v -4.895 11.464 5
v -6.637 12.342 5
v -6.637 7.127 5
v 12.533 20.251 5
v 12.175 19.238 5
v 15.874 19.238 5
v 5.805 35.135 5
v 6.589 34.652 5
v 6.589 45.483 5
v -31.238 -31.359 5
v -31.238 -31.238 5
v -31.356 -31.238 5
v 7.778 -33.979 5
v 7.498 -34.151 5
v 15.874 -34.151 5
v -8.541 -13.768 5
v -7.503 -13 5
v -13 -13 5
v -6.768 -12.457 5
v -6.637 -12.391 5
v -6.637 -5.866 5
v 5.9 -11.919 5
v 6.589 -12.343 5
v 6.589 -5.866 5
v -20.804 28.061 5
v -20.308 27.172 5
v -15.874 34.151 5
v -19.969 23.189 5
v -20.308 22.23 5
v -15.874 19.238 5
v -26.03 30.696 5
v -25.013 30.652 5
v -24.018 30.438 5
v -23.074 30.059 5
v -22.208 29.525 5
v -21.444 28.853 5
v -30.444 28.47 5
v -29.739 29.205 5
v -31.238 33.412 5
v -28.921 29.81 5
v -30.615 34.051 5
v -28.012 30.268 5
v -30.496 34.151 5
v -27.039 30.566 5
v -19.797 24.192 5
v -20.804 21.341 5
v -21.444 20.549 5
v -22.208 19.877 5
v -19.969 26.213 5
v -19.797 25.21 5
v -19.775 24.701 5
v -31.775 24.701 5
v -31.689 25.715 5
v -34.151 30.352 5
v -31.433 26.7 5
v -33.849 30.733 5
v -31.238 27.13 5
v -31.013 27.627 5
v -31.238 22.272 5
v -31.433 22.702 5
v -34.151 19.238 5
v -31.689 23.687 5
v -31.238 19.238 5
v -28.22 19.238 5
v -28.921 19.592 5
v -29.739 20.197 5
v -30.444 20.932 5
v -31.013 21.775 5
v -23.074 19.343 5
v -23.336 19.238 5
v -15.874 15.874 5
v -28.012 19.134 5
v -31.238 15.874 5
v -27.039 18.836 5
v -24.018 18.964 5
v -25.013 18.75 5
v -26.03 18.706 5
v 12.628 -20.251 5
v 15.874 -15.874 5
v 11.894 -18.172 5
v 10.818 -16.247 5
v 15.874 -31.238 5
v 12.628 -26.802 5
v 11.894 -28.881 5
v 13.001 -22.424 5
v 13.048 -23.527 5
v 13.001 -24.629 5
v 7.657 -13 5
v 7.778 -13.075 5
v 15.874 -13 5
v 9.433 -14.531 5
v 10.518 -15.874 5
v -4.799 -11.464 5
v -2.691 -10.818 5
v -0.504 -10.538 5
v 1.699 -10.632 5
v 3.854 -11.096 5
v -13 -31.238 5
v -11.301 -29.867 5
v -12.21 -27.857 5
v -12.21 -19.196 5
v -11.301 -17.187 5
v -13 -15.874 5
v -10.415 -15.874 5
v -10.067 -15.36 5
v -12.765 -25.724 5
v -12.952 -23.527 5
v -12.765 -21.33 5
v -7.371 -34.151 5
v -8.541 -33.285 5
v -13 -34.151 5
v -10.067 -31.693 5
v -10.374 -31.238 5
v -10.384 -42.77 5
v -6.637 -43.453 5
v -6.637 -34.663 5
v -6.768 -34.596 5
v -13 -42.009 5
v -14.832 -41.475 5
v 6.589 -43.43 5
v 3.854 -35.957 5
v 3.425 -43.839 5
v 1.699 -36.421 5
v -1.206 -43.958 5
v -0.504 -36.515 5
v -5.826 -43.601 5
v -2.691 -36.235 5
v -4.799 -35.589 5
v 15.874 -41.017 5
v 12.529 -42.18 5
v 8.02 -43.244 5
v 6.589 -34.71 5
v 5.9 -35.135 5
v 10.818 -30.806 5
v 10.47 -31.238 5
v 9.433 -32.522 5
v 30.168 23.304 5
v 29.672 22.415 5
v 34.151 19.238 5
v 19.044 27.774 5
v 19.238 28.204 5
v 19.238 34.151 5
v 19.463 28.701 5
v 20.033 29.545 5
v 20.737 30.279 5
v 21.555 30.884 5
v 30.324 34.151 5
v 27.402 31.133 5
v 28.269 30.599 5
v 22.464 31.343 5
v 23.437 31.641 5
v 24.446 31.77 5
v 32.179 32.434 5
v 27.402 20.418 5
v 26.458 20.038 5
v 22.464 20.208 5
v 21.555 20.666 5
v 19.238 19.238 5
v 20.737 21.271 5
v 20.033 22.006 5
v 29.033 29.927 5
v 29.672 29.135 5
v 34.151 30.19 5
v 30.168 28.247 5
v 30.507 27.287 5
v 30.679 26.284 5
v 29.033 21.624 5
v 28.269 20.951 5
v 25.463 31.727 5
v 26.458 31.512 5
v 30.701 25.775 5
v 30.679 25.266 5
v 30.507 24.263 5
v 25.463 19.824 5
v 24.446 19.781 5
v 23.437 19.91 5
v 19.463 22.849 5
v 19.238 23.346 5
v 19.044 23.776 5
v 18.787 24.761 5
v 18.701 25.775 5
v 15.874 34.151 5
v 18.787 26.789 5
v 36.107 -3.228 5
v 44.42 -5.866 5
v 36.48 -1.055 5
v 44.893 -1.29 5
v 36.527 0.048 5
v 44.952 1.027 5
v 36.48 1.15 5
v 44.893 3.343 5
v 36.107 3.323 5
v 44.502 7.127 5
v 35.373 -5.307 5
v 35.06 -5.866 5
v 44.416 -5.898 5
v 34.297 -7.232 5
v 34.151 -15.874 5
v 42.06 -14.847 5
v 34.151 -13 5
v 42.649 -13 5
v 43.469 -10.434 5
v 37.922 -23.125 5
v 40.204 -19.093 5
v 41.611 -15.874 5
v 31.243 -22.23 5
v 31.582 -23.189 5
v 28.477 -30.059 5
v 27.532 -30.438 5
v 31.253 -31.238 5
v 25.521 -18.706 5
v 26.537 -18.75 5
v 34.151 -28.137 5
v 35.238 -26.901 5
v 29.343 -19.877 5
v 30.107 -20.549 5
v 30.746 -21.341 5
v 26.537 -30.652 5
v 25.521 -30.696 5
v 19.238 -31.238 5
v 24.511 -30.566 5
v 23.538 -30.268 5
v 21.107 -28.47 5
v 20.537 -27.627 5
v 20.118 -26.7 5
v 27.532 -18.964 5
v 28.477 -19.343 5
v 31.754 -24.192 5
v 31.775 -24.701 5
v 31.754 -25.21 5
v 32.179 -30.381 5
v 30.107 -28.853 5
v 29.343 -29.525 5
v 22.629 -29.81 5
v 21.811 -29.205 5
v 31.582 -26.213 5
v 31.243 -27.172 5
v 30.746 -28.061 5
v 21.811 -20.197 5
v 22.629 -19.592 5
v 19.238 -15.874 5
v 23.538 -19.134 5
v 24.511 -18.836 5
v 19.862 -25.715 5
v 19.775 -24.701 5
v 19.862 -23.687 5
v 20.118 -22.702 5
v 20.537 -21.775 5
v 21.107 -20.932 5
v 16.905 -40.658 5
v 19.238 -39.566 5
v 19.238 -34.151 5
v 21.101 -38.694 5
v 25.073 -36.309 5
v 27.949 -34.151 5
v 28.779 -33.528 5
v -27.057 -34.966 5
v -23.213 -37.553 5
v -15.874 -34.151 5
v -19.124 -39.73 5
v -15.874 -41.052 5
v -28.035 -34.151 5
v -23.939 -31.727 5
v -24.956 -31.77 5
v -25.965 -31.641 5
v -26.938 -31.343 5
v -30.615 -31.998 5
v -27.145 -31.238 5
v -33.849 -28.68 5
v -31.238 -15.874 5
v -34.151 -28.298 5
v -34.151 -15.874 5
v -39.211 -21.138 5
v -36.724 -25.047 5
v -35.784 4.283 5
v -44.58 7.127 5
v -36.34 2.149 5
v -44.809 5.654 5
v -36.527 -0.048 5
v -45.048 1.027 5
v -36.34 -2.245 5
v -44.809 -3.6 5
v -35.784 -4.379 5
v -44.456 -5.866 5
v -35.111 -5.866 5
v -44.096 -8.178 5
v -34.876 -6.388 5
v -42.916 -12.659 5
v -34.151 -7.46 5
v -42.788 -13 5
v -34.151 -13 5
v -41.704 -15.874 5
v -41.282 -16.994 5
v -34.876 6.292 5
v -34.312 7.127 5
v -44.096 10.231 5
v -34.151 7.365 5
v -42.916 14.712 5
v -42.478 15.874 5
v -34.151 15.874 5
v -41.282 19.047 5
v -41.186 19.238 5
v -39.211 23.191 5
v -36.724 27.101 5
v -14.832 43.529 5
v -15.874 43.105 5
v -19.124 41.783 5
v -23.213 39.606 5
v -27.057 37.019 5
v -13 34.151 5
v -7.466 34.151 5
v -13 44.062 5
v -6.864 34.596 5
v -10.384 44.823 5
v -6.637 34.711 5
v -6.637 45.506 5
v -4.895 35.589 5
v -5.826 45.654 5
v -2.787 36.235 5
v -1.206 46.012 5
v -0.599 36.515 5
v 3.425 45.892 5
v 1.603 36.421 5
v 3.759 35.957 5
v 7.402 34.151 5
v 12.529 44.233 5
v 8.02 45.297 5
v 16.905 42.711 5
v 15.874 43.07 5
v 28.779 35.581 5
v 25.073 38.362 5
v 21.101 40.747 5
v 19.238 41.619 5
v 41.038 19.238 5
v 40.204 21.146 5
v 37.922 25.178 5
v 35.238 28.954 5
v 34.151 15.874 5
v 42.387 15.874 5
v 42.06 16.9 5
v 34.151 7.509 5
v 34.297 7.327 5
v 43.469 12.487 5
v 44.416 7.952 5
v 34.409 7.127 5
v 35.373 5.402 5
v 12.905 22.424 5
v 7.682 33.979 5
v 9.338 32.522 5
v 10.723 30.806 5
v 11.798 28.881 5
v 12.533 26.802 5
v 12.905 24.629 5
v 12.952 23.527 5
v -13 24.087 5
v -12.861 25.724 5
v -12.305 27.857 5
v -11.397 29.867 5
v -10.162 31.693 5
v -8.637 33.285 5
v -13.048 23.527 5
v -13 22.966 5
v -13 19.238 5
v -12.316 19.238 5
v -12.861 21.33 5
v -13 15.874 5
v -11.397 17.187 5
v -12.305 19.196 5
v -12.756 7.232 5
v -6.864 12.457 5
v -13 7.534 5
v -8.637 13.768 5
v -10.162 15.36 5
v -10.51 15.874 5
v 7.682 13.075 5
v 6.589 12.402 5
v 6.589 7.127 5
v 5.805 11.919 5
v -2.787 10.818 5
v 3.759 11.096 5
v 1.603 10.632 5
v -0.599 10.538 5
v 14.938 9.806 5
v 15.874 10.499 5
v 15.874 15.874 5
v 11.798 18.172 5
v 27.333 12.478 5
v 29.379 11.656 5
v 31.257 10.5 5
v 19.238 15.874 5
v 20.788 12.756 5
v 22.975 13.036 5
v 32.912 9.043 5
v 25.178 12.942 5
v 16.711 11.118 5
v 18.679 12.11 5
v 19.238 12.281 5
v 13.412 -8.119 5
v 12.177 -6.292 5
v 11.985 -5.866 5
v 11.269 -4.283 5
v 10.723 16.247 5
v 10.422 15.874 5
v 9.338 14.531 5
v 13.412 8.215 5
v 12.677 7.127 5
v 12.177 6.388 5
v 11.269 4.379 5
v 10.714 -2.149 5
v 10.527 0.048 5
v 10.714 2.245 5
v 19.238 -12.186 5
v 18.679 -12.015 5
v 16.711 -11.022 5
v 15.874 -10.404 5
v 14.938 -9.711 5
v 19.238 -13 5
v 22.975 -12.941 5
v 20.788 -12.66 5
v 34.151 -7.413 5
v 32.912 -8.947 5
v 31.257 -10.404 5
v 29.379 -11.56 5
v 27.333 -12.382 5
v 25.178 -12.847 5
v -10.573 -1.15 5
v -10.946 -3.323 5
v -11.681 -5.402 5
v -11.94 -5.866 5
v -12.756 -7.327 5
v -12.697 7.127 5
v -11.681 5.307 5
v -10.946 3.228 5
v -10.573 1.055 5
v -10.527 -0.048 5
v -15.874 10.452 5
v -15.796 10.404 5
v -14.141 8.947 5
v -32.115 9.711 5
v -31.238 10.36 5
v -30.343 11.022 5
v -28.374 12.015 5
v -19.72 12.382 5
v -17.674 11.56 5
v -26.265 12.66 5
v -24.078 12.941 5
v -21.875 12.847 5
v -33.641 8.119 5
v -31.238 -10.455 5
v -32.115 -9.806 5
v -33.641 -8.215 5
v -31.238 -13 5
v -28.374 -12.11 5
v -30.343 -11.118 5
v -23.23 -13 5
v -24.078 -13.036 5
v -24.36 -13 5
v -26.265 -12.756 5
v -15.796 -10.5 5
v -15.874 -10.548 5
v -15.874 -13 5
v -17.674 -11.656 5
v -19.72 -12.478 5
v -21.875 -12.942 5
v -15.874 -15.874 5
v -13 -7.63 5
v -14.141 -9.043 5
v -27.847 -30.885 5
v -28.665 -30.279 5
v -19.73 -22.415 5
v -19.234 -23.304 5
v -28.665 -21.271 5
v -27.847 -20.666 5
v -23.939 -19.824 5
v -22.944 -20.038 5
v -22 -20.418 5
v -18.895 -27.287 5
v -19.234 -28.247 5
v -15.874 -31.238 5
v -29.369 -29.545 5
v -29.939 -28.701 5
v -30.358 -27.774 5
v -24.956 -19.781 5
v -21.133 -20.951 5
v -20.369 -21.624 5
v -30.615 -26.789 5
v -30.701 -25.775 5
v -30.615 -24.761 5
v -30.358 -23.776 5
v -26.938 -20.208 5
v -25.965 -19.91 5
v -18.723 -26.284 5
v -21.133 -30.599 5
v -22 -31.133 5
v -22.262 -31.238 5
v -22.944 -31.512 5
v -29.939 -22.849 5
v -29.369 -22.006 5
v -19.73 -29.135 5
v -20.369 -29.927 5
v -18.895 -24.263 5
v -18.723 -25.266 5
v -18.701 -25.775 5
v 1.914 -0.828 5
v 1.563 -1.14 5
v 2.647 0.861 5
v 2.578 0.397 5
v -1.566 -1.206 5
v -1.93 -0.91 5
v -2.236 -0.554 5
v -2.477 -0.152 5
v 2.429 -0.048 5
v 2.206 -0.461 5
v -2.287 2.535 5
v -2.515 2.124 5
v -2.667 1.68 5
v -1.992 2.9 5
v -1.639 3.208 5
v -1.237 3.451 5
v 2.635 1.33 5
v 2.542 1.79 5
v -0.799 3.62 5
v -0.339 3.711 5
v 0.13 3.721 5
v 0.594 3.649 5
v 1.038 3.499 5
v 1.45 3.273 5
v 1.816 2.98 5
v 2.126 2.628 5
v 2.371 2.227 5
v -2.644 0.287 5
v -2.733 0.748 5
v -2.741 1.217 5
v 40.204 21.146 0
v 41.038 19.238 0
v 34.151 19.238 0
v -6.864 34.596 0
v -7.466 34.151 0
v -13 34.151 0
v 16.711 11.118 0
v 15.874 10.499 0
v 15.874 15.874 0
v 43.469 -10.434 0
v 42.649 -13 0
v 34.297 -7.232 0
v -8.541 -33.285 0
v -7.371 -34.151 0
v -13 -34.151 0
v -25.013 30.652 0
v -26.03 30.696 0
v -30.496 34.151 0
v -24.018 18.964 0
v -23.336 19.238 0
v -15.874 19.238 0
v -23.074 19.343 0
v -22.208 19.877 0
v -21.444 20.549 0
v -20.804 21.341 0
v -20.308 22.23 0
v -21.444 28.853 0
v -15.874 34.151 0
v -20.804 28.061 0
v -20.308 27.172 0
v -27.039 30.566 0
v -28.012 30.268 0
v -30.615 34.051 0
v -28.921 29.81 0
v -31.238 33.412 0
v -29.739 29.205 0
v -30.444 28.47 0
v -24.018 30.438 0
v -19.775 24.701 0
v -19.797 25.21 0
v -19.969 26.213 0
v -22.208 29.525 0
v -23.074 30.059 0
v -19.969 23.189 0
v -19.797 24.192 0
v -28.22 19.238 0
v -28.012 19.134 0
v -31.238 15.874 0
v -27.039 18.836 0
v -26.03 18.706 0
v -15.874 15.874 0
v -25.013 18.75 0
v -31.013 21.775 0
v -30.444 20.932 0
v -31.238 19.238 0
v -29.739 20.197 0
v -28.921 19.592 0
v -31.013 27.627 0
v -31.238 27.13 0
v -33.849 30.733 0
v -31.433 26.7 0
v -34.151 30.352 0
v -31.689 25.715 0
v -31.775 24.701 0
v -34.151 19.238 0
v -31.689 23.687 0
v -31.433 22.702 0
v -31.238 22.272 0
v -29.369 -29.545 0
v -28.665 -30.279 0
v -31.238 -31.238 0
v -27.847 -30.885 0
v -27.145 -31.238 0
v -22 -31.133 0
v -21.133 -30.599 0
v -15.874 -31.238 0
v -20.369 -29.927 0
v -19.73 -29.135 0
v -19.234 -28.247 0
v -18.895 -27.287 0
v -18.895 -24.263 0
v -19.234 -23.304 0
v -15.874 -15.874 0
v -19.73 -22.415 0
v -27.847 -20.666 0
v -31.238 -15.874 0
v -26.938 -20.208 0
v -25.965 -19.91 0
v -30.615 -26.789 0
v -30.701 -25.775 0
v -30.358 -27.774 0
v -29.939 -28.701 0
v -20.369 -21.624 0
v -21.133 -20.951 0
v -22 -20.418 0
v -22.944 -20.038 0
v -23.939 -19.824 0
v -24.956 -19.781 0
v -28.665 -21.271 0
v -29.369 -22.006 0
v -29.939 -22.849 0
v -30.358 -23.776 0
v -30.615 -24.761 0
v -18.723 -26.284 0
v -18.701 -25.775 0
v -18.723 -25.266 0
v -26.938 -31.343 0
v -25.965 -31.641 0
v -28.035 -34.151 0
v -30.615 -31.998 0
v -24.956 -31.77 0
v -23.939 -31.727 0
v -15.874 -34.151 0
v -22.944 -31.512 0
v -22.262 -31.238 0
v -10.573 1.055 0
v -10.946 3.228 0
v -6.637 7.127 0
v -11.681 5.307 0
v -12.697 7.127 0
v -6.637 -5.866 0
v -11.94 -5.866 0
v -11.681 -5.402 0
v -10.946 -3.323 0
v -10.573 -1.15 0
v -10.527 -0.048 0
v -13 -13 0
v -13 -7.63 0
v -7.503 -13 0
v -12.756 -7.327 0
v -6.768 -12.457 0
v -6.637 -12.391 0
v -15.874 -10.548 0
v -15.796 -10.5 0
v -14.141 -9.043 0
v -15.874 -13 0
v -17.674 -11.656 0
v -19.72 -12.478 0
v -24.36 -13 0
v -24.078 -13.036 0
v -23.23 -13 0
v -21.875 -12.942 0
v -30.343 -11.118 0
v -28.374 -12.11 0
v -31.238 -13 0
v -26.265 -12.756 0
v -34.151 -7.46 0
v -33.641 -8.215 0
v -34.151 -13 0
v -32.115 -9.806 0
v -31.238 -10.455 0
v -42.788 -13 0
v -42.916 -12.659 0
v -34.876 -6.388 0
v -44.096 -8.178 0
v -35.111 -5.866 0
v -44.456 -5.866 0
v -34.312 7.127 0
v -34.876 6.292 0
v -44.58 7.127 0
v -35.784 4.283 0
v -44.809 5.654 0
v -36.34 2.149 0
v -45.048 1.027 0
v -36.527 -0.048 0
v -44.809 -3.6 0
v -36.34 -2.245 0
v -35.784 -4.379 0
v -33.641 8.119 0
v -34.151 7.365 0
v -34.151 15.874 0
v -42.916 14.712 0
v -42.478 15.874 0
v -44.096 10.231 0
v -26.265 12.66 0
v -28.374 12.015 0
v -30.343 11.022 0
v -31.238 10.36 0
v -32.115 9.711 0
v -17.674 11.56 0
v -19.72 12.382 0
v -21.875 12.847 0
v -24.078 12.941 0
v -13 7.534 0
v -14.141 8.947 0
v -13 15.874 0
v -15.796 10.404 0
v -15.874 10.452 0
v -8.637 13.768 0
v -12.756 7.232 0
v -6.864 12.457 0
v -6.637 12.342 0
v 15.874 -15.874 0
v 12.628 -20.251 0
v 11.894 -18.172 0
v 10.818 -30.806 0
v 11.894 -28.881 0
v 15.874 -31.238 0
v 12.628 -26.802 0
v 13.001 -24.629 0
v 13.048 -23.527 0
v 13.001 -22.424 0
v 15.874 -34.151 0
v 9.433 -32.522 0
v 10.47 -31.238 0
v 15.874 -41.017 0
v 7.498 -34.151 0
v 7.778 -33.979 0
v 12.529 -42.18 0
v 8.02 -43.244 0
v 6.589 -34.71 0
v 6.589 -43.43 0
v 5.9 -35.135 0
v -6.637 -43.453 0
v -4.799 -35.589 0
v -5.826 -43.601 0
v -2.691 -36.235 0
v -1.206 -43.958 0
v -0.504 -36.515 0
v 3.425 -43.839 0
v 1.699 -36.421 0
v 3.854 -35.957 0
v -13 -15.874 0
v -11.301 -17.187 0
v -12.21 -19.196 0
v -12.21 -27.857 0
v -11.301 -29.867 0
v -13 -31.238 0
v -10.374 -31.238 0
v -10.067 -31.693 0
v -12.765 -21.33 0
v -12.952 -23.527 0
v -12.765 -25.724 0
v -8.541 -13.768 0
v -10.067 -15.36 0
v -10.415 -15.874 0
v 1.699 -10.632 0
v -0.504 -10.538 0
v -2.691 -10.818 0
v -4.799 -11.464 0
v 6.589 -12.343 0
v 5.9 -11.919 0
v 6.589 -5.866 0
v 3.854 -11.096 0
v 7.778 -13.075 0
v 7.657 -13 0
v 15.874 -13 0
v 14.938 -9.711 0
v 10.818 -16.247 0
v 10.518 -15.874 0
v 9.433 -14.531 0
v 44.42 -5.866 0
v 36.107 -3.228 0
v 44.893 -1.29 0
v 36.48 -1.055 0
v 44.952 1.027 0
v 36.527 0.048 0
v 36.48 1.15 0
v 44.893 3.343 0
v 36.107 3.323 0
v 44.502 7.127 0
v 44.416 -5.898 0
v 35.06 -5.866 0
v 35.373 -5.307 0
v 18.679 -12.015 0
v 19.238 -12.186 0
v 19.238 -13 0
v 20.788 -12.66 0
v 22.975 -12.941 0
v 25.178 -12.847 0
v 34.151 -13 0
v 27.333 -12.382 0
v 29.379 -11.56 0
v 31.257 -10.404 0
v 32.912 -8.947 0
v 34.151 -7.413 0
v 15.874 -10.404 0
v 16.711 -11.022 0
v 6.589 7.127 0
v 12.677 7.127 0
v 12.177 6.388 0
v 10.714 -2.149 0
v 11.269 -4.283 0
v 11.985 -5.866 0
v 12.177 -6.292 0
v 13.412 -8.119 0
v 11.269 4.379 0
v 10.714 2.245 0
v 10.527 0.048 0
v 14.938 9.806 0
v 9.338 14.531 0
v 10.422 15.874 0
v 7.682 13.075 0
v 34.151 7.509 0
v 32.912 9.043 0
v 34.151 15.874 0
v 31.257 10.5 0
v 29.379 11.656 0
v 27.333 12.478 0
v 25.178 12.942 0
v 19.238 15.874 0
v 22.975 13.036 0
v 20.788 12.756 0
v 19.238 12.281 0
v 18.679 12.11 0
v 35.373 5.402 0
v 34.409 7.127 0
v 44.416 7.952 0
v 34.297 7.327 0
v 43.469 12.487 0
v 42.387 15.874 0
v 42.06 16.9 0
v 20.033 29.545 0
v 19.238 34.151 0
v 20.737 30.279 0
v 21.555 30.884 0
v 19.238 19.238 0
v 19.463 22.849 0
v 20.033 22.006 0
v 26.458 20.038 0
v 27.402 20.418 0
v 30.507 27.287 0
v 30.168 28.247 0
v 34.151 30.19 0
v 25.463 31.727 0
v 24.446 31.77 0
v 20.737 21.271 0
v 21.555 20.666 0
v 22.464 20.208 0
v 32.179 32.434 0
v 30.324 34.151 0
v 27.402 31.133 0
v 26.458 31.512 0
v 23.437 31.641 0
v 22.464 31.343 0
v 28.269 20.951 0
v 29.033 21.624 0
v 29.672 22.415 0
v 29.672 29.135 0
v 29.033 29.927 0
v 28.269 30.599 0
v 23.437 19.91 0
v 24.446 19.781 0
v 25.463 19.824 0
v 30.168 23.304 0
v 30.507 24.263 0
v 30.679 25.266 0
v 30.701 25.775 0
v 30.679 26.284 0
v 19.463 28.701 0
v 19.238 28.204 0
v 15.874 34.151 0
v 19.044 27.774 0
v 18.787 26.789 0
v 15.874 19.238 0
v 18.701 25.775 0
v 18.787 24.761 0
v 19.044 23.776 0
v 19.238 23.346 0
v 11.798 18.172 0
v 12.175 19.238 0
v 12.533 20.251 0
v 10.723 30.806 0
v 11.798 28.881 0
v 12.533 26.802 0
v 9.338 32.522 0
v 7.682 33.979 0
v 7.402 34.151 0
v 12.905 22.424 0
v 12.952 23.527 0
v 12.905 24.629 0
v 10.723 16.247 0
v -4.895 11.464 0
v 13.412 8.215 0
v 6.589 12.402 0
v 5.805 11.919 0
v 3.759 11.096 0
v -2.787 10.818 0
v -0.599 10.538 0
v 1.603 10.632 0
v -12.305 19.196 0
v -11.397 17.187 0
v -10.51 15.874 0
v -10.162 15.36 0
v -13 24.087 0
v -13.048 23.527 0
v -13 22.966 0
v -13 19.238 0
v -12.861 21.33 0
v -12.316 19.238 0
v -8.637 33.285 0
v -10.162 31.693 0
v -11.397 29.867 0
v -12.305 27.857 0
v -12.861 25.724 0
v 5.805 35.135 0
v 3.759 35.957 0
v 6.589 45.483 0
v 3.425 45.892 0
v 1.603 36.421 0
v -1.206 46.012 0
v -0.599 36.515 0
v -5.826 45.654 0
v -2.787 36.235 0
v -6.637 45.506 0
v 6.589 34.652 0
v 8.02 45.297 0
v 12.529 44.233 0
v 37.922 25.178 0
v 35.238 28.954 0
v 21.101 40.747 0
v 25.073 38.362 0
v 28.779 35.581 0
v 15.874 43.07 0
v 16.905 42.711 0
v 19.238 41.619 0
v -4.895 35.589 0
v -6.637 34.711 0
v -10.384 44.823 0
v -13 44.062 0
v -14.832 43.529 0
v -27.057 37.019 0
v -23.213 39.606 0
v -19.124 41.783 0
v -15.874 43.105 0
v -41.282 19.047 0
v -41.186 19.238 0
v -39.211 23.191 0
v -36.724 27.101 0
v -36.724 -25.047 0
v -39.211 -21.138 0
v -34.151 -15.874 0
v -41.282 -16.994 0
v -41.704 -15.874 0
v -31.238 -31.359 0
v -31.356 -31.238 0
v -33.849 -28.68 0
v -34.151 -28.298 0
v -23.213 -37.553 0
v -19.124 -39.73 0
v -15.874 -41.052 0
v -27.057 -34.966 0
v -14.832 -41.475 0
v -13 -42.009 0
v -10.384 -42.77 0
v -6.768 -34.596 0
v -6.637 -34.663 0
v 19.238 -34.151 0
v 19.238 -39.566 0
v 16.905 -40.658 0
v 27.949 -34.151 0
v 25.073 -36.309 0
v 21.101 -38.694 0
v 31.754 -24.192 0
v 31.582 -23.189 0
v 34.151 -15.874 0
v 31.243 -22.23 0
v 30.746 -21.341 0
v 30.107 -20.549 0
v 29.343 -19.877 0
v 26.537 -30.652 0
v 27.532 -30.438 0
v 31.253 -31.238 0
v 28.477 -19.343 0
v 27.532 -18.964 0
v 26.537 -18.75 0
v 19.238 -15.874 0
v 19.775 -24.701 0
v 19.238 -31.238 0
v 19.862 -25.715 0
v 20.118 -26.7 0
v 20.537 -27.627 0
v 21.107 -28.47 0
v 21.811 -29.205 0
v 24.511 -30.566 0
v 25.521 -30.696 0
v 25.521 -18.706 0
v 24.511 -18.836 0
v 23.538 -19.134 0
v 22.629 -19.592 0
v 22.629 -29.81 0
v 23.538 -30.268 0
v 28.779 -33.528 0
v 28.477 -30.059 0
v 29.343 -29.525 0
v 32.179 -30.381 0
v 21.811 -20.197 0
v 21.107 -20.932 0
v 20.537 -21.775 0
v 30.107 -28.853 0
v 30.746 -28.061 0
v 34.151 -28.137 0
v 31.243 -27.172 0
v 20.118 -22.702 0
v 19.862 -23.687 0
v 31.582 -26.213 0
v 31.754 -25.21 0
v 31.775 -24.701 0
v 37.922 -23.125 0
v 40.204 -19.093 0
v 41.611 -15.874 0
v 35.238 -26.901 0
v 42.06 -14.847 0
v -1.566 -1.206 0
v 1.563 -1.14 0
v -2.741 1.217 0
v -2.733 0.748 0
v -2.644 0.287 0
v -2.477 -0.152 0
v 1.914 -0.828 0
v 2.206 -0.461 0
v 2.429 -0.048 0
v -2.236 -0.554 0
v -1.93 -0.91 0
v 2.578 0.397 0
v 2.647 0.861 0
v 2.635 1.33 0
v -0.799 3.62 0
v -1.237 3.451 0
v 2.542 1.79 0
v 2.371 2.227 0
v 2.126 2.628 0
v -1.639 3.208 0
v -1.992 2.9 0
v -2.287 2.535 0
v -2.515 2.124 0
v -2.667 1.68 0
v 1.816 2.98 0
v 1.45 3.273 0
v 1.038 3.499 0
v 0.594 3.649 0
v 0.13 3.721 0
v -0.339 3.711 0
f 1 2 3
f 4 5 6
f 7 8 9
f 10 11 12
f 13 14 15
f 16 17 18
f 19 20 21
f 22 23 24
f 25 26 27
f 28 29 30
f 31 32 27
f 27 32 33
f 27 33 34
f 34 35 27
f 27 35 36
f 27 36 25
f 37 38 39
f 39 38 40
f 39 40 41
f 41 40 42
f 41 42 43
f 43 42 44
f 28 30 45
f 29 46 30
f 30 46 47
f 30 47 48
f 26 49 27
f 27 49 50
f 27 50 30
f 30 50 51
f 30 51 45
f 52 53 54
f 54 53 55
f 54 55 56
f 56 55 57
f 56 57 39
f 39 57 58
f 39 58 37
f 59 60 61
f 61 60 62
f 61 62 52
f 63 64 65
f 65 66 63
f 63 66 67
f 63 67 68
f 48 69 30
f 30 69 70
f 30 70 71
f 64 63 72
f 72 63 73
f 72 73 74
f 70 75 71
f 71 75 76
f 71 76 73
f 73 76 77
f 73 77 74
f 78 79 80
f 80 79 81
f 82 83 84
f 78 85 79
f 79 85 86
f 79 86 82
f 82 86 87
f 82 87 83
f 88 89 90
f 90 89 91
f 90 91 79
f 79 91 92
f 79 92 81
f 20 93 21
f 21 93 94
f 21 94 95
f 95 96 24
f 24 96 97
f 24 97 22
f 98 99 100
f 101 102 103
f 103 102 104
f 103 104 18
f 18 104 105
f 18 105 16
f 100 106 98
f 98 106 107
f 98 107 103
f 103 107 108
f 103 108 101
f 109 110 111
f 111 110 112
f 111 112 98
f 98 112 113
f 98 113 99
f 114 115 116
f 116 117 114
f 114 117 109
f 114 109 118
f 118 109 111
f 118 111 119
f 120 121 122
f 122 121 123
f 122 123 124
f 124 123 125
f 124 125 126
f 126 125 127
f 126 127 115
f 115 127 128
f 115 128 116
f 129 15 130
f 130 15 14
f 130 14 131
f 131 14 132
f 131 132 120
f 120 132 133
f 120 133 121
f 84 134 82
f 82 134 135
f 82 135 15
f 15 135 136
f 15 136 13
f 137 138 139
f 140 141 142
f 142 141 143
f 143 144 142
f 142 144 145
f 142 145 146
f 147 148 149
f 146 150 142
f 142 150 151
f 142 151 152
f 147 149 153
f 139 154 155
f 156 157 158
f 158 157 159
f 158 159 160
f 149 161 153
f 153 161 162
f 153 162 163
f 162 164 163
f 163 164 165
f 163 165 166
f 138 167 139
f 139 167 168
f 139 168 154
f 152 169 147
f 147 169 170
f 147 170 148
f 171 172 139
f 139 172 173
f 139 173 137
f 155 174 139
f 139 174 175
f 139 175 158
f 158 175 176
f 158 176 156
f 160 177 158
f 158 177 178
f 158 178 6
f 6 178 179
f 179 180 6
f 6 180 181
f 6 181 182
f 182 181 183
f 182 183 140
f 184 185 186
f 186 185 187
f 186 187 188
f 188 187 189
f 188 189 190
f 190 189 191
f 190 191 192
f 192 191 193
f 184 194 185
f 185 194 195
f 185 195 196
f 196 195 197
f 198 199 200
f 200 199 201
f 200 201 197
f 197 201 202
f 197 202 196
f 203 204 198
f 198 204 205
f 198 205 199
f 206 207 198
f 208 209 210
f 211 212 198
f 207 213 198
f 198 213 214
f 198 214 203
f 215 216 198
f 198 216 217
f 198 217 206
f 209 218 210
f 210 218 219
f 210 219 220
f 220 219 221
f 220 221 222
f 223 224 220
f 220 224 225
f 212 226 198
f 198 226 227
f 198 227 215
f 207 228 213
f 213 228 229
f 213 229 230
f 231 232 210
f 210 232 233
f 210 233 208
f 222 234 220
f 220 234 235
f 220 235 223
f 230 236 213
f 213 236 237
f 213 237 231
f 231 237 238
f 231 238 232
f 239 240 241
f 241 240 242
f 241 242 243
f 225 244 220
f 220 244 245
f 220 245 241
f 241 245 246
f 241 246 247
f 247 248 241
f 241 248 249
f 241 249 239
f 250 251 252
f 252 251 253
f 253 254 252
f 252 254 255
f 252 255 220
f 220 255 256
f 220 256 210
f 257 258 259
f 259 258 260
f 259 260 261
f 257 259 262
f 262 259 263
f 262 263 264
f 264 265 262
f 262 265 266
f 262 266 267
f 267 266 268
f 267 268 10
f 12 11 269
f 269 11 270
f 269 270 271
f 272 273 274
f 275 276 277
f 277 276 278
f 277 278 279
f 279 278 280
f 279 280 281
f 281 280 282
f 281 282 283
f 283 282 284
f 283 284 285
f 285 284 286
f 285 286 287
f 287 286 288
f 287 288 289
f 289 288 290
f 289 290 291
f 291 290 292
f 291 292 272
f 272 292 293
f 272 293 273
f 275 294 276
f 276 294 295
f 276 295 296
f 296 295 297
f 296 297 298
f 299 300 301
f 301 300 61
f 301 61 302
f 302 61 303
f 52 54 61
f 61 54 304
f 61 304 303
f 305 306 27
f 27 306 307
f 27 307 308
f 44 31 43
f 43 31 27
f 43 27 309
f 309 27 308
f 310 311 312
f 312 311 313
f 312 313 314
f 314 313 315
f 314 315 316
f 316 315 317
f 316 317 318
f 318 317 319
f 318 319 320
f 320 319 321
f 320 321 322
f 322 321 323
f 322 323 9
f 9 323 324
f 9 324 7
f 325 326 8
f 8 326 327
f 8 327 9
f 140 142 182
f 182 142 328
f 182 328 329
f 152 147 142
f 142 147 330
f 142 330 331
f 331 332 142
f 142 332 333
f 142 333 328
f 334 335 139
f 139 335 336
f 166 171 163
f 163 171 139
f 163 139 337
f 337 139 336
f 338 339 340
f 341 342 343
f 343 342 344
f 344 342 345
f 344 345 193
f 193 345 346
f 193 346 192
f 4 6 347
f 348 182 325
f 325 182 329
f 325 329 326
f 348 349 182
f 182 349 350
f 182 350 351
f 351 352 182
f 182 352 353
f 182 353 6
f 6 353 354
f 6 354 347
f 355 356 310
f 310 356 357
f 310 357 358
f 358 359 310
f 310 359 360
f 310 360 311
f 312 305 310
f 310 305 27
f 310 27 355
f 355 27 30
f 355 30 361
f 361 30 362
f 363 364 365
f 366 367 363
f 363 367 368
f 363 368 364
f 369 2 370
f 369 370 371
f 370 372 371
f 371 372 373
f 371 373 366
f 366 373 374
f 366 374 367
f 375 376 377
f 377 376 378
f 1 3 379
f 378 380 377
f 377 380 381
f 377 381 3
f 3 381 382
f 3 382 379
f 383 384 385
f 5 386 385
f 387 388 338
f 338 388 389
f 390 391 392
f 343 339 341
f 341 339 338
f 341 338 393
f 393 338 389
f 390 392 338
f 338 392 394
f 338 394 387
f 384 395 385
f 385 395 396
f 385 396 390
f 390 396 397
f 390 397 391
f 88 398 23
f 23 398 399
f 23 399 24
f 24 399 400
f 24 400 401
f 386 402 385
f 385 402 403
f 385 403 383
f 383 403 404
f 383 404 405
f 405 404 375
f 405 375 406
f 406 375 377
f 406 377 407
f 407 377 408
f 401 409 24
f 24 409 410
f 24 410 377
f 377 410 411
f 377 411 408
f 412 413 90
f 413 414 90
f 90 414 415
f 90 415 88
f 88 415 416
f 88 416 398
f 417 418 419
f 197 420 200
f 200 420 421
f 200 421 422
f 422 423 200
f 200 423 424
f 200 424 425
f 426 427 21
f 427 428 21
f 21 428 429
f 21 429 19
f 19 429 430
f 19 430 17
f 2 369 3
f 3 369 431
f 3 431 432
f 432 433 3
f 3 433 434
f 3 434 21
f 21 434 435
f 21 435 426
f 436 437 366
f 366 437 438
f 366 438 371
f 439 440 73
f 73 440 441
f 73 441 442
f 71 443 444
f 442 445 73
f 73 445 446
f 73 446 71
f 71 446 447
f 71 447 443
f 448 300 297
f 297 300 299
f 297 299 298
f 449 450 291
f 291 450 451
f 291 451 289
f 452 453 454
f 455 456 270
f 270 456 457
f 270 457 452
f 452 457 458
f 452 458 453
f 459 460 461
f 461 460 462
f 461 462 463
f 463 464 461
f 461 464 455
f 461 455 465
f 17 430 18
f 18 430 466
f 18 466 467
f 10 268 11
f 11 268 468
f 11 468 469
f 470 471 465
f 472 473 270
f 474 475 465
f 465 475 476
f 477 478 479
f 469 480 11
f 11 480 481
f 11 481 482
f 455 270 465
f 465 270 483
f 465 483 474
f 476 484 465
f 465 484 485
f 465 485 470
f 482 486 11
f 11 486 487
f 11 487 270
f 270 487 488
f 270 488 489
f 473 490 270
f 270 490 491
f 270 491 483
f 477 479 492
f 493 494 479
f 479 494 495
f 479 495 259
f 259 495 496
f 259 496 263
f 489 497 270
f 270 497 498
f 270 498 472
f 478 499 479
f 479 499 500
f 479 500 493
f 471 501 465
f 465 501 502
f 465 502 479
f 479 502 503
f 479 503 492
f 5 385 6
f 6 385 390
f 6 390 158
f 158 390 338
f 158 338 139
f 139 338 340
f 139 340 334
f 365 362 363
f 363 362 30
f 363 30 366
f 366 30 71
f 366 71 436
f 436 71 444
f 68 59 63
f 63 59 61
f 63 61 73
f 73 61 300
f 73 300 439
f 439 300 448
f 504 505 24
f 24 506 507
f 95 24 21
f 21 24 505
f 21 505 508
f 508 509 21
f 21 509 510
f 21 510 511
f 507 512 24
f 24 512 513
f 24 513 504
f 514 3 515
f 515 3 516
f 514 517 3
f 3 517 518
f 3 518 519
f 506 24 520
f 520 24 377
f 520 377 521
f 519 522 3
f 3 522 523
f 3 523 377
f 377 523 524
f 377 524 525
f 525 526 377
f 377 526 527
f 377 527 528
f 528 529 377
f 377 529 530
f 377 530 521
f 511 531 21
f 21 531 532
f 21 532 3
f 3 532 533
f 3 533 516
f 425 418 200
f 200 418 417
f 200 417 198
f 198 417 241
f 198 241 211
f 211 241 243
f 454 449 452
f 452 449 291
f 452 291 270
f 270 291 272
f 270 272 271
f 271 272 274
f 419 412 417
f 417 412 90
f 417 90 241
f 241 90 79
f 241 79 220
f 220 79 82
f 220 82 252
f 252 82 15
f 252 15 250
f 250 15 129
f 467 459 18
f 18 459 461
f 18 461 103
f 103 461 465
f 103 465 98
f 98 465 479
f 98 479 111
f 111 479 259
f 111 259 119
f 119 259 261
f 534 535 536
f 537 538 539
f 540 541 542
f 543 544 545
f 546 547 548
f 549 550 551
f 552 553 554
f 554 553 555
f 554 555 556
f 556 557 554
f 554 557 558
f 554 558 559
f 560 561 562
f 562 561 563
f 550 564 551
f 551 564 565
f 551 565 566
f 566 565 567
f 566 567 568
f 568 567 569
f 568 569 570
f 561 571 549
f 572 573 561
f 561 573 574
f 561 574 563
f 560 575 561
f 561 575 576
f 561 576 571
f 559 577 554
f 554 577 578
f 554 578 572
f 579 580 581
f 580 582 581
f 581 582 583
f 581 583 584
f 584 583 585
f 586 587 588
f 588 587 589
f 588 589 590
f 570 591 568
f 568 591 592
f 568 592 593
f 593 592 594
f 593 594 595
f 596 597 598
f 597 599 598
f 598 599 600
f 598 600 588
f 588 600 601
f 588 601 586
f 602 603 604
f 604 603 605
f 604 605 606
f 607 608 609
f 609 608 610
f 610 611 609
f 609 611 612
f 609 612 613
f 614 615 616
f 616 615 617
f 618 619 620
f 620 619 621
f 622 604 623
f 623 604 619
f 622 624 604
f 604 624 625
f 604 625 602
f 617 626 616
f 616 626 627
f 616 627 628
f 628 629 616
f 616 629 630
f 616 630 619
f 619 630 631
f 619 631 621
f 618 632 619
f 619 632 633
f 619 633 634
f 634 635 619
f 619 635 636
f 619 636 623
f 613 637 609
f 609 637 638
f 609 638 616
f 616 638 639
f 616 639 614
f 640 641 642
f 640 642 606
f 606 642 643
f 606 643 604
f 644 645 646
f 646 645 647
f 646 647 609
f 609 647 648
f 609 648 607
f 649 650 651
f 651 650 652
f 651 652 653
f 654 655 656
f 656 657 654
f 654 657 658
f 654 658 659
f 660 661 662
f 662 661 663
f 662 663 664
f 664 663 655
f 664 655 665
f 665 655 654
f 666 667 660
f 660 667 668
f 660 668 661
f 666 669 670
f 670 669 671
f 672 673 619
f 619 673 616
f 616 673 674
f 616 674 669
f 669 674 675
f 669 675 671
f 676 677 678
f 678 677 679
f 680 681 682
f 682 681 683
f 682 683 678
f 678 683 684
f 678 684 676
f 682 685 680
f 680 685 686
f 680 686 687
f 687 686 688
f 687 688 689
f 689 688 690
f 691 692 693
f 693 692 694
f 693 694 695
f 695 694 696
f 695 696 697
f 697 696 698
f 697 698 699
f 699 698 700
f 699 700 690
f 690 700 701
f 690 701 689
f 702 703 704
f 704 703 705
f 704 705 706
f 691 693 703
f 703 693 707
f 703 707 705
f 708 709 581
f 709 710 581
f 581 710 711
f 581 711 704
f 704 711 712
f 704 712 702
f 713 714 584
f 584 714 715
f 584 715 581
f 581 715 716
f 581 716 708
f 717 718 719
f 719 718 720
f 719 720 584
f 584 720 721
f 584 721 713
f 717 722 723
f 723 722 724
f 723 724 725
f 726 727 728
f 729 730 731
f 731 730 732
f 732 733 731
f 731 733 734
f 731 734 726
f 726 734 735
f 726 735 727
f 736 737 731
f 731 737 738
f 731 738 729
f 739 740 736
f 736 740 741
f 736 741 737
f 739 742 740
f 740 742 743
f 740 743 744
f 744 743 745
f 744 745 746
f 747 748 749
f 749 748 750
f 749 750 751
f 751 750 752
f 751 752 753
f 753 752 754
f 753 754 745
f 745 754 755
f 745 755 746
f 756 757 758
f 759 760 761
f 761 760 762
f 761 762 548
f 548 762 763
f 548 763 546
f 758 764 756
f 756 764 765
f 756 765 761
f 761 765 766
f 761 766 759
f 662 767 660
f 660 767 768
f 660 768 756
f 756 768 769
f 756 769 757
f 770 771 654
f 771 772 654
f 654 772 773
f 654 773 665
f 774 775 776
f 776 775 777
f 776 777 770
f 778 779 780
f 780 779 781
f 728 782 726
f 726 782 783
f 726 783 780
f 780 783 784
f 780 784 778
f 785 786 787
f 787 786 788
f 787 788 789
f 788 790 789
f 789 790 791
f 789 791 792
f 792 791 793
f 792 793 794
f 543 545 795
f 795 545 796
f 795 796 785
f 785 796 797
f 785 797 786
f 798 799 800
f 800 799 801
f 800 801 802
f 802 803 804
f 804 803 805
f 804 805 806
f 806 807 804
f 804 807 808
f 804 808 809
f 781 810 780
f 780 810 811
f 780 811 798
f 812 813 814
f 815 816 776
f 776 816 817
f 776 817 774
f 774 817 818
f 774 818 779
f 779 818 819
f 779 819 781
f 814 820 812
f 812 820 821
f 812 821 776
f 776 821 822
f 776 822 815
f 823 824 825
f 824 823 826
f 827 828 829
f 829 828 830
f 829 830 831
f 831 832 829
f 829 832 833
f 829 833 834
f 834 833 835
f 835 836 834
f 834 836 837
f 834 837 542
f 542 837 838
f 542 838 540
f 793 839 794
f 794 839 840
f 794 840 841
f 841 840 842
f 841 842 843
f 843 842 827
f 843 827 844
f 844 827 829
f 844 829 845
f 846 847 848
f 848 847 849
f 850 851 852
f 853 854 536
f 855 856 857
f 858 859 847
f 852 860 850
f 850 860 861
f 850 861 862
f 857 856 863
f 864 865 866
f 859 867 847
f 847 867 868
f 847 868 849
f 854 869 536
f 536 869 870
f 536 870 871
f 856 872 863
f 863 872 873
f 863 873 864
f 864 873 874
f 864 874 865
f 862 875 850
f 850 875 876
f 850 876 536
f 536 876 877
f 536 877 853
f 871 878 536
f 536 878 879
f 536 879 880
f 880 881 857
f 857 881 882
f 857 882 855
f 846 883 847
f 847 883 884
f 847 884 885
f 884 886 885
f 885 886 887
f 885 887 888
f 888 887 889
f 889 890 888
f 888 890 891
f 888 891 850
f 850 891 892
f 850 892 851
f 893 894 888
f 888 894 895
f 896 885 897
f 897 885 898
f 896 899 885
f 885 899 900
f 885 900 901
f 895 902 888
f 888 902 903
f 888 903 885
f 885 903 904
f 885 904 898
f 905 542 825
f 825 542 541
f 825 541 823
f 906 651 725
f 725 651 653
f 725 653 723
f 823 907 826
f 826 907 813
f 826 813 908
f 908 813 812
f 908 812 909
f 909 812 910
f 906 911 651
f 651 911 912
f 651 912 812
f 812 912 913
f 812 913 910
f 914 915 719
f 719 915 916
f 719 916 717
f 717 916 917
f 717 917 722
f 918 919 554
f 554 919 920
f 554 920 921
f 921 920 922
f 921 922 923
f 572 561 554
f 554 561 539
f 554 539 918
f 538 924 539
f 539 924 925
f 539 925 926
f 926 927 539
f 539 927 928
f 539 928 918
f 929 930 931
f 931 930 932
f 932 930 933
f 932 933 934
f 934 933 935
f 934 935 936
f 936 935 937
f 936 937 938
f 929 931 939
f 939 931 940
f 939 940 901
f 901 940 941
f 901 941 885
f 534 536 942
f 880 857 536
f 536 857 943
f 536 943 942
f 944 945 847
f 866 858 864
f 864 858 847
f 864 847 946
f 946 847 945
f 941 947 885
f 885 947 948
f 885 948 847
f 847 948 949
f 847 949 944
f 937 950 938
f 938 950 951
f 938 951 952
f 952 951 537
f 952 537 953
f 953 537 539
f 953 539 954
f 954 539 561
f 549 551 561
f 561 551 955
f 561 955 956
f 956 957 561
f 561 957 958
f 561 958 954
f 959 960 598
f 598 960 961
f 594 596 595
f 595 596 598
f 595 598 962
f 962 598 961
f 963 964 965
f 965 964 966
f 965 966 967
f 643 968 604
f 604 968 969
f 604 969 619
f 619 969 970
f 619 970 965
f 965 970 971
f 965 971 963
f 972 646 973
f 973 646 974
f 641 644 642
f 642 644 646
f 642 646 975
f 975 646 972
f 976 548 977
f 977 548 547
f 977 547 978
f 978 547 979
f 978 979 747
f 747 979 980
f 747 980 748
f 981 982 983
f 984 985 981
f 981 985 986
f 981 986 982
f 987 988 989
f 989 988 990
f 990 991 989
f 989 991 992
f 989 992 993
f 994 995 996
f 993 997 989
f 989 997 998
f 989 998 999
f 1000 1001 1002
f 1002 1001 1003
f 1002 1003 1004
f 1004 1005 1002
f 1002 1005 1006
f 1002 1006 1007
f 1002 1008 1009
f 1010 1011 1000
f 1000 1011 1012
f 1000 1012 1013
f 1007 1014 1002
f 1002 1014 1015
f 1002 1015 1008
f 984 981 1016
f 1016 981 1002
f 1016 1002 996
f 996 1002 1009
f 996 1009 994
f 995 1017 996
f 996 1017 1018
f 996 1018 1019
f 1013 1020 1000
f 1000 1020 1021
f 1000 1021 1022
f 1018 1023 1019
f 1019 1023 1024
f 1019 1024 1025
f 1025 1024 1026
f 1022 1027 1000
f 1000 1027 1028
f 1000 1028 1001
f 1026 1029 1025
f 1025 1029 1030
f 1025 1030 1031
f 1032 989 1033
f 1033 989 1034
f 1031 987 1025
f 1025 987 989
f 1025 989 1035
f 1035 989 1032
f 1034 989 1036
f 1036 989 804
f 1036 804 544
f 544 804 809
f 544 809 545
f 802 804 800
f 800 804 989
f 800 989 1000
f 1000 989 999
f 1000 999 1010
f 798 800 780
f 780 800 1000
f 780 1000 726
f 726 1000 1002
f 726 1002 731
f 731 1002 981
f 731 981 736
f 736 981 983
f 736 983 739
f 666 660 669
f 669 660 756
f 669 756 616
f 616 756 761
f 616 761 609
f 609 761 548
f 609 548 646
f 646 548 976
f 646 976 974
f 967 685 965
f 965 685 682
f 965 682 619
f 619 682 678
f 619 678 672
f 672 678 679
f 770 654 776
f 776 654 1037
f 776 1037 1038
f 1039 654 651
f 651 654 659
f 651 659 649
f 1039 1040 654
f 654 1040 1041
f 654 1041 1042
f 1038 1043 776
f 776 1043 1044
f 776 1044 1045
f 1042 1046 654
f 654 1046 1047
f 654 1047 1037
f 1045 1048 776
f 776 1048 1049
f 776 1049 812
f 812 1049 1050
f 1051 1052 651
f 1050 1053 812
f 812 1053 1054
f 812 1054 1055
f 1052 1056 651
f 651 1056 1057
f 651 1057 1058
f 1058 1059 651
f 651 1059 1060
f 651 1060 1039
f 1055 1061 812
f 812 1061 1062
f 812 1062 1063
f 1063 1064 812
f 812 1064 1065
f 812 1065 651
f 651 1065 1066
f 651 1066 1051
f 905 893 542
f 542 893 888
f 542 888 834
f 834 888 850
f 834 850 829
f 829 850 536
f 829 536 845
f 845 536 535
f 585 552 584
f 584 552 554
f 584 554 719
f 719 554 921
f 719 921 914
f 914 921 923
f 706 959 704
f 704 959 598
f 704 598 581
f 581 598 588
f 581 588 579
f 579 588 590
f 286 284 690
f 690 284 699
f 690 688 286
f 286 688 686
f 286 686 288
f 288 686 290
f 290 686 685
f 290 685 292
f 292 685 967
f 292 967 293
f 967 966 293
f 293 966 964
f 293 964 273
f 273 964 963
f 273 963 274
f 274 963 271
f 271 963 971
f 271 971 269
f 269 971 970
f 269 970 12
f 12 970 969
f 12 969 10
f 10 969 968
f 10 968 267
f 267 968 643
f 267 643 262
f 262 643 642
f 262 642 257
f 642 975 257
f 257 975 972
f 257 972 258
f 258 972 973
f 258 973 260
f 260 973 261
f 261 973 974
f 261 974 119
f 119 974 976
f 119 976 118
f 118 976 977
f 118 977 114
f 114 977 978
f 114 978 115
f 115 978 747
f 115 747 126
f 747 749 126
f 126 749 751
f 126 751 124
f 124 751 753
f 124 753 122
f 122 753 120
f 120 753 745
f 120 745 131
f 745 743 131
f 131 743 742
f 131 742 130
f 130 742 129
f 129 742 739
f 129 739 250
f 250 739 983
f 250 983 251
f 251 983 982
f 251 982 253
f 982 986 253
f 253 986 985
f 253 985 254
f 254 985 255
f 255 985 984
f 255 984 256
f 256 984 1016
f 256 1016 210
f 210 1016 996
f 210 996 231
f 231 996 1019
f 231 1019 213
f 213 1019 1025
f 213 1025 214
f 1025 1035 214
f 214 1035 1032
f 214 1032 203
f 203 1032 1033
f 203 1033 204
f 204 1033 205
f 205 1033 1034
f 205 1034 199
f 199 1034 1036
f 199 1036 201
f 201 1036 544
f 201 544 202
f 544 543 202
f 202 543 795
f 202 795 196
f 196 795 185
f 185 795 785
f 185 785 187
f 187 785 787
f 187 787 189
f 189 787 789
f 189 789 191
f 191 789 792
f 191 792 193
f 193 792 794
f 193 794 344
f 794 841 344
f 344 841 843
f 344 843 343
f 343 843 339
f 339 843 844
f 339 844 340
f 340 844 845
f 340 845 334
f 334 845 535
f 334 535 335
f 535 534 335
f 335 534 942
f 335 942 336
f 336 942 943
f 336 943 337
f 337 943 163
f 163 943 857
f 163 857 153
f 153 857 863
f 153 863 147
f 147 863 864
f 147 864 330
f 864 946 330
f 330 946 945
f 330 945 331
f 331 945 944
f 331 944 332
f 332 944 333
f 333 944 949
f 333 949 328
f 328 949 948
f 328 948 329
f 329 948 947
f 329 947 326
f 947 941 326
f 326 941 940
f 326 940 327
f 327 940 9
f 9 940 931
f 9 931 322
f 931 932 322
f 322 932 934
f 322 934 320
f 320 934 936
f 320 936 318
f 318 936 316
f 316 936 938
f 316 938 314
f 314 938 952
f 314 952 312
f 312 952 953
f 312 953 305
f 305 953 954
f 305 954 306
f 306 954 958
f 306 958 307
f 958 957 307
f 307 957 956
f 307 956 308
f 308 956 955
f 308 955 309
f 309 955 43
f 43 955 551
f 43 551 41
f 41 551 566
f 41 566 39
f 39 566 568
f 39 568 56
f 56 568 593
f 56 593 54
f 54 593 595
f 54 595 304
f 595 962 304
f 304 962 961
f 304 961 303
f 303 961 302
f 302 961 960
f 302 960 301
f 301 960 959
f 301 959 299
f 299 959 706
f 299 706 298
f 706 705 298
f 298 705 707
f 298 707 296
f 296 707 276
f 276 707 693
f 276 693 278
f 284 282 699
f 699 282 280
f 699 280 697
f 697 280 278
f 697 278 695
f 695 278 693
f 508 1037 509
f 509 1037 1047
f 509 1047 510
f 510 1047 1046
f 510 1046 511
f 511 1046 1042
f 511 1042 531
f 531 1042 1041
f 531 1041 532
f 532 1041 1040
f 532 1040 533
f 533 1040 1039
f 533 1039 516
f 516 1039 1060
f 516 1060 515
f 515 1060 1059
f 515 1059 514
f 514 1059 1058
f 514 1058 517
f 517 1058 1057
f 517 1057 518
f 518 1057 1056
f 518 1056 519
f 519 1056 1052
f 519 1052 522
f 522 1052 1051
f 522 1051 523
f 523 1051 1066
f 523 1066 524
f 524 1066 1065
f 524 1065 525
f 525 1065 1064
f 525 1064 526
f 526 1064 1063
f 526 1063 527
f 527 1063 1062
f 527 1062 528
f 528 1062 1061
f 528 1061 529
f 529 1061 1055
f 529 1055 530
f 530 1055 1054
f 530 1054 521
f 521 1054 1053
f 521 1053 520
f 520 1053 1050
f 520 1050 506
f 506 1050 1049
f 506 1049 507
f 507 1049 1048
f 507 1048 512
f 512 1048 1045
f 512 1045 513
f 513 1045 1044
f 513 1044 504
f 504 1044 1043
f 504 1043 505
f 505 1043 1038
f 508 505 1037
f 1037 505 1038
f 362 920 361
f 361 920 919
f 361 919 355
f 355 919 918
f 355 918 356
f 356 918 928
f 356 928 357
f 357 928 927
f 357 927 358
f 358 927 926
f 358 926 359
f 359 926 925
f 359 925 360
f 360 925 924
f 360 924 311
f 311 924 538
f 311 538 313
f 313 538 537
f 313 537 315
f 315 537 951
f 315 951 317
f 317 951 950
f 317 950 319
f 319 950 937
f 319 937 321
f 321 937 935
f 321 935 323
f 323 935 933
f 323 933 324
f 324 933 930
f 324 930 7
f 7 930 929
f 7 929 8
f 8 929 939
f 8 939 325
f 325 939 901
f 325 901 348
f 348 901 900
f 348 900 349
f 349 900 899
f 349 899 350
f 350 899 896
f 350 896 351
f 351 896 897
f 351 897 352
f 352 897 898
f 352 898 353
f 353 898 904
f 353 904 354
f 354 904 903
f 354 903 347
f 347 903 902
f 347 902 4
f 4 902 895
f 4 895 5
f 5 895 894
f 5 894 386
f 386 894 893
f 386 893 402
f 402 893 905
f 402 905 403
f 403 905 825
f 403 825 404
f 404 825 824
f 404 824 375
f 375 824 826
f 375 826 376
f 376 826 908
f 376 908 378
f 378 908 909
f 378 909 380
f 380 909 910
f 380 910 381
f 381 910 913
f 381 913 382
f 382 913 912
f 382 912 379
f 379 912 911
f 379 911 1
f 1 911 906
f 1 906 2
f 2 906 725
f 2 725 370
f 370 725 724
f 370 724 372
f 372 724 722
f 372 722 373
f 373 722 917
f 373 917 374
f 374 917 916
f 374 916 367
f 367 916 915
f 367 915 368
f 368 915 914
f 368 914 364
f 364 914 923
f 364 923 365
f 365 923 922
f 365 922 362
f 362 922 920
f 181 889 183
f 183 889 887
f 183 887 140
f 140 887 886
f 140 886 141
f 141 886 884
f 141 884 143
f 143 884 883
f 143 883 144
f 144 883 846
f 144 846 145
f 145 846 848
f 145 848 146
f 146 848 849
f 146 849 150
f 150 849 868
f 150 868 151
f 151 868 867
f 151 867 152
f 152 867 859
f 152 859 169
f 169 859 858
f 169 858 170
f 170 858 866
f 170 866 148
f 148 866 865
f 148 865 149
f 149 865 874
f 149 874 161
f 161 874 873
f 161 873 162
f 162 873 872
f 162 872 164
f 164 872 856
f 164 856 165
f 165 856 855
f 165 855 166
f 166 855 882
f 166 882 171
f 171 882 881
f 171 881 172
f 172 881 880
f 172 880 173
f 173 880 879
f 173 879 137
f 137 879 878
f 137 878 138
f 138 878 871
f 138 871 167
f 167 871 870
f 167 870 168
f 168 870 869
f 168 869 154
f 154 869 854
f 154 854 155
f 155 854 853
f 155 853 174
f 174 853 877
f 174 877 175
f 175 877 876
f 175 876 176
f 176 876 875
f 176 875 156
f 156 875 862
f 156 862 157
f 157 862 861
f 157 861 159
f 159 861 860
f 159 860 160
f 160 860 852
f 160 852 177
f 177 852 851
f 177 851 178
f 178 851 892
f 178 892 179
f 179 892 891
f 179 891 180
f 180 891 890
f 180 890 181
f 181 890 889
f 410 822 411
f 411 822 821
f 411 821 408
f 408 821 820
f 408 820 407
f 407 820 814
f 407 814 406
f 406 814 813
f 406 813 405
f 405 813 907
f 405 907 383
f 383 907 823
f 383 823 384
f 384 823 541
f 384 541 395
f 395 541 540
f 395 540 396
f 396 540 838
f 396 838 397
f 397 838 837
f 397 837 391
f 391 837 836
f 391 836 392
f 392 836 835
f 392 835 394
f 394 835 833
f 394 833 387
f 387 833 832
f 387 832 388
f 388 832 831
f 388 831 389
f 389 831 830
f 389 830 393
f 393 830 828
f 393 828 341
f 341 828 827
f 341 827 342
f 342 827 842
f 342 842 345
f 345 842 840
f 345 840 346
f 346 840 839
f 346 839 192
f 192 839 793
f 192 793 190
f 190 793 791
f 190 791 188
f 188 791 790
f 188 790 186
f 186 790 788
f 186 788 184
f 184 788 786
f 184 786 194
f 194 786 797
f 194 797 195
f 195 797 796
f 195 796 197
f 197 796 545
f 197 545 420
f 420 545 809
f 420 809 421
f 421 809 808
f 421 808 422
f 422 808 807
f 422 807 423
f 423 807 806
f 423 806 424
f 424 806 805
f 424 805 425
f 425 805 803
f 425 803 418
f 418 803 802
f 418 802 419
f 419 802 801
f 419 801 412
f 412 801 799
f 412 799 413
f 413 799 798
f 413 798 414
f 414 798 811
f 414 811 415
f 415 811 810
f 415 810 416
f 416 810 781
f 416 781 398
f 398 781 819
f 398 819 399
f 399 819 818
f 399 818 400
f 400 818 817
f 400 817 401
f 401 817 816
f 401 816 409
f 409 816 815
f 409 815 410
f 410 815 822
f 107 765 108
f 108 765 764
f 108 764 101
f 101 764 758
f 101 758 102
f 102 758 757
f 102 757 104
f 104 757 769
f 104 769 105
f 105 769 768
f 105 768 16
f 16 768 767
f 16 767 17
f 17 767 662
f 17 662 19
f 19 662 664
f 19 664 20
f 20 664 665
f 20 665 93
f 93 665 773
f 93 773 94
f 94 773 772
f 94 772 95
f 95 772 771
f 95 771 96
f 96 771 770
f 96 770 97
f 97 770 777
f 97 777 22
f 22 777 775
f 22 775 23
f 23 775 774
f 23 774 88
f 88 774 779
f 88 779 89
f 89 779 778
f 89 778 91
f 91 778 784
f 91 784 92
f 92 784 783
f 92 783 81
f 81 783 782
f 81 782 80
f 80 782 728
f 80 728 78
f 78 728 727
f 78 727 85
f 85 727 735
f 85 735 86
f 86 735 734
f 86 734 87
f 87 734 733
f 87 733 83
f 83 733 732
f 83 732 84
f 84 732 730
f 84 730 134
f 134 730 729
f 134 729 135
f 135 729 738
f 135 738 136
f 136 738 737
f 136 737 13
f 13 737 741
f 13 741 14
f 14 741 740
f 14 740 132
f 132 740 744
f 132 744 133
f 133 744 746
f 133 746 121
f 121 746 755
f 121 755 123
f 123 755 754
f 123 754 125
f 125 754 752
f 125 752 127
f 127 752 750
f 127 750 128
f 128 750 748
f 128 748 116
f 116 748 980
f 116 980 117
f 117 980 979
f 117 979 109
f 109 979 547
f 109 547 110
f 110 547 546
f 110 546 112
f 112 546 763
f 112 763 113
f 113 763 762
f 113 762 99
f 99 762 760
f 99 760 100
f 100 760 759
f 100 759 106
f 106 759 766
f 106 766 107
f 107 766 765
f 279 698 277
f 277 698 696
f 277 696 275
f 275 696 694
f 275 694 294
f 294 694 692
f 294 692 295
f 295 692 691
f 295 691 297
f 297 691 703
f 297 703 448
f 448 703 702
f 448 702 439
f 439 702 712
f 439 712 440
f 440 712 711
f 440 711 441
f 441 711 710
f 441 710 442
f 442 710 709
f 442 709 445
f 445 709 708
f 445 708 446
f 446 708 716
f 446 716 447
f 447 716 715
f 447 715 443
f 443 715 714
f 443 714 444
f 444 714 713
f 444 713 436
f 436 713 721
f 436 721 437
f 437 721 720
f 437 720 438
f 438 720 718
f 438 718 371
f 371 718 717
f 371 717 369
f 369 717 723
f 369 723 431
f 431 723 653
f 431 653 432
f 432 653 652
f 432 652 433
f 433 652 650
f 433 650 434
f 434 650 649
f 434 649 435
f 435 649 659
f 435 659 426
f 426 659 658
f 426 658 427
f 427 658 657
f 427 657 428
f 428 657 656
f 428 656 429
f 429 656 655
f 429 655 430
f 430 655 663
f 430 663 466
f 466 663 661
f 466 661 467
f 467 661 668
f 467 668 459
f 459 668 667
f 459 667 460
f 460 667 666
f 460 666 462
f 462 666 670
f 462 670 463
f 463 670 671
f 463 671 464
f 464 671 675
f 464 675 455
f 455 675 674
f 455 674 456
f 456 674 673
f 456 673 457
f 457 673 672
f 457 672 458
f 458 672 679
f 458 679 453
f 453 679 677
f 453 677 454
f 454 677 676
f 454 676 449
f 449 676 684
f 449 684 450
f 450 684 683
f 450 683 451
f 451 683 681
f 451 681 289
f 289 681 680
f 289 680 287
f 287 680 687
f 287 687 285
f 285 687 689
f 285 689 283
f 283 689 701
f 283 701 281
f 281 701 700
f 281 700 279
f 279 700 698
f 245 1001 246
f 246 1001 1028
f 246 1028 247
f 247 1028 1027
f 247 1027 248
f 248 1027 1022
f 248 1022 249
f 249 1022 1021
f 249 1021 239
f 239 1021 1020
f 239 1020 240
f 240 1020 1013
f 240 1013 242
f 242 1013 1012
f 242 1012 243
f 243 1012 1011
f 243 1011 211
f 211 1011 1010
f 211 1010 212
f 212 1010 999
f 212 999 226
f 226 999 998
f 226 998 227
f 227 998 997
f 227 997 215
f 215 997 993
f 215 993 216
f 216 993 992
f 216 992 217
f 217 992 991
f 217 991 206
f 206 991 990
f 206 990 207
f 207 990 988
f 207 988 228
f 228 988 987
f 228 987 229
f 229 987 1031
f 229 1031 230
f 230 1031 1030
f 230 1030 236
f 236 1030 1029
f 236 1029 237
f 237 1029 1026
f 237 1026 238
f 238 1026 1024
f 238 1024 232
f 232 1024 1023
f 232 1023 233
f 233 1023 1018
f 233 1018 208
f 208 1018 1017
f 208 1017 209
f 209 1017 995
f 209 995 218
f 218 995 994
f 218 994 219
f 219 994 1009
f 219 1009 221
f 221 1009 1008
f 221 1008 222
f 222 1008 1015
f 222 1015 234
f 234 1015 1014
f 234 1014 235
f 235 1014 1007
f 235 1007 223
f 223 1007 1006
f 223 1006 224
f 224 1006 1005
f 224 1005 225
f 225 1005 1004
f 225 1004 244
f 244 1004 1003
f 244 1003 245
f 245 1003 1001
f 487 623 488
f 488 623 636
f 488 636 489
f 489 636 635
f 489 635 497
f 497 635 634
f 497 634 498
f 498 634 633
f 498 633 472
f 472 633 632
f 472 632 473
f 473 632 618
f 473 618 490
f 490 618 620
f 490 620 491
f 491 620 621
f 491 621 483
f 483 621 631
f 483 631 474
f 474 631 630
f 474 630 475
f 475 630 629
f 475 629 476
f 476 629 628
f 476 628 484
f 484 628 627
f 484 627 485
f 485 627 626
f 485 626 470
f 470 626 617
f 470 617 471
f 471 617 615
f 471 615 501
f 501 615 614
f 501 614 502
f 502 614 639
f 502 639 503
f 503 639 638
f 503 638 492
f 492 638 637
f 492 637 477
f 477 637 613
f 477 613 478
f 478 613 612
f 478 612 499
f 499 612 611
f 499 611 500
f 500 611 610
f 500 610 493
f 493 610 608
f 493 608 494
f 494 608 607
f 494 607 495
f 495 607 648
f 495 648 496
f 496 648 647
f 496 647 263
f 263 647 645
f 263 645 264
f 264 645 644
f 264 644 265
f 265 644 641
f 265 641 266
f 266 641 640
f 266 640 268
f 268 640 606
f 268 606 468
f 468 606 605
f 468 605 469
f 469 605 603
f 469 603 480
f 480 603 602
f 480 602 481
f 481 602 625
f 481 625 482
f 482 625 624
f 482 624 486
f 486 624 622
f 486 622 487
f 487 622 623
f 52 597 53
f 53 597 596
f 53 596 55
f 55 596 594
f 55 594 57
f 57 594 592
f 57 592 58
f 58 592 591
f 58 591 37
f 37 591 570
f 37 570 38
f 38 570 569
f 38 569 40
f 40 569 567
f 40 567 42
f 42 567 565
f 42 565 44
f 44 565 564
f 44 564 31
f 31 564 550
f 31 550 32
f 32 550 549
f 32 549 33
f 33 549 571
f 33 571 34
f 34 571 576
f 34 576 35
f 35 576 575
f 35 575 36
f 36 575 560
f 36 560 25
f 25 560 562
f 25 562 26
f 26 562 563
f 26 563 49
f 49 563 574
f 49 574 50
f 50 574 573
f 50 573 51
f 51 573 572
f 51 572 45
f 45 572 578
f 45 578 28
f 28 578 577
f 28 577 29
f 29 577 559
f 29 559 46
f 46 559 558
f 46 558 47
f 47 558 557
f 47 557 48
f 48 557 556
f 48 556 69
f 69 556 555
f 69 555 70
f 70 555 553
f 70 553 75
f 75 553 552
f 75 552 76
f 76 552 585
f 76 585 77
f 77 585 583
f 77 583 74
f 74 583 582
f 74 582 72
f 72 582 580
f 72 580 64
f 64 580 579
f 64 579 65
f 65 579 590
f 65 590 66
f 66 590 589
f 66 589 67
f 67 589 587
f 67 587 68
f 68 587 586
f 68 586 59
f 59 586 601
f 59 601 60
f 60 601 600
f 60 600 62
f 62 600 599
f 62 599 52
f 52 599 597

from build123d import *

# Parameters (mm, degrees)
ESQUISSE1_R        = 45
ESQUISSE1_R_2      = 13
ESQUISSE1_R_3      = 6
BOSS_EXTRU_1_DEPTH = 5


with BuildPart() as part:
    # Esquisse1 → Boss.-Extru.1 (new body)
    with BuildSketch(Plane.XY):
        with Locations((-0.047735681, 1.026587535)):
            Circle(ESQUISSE1_R)
        with Locations((-0.047735681, 23.526587535)):
            Circle(ESQUISSE1_R_2, mode=Mode.SUBTRACT)
        with Locations((23.526587535, 0.047735681)):
            Circle(ESQUISSE1_R_2, mode=Mode.SUBTRACT)
        with Locations((0.047735681, -23.526587535)):
            Circle(ESQUISSE1_R_2, mode=Mode.SUBTRACT)
        with Locations((-23.526587535, -0.047735681)):
            Circle(ESQUISSE1_R_2, mode=Mode.SUBTRACT)
        with Locations((24.70100166, 25.775324877)):
            Circle(ESQUISSE1_R_3, mode=Mode.SUBTRACT)
        with Locations((25.775324877, -24.70100166)):
            Circle(ESQUISSE1_R_3, mode=Mode.SUBTRACT)
        with Locations((-24.70100166, -25.775324877)):
            Circle(ESQUISSE1_R_3, mode=Mode.SUBTRACT)
        with Locations((-25.775324877, 24.70100166)):
            Circle(ESQUISSE1_R_3, mode=Mode.SUBTRACT)
        with BuildLine():
            Line((-1.565957185, -1.206124597), (1.563345795, -1.140072677))
            ThreePointArc((1.563345795, -1.140072677), (-0.104713375, 3.725986273), (-1.565957185, -1.206124597))
        make_face(mode=Mode.SUBTRACT)
    extrude(amount=BOSS_EXTRU_1_DEPTH)


solid = part.part
